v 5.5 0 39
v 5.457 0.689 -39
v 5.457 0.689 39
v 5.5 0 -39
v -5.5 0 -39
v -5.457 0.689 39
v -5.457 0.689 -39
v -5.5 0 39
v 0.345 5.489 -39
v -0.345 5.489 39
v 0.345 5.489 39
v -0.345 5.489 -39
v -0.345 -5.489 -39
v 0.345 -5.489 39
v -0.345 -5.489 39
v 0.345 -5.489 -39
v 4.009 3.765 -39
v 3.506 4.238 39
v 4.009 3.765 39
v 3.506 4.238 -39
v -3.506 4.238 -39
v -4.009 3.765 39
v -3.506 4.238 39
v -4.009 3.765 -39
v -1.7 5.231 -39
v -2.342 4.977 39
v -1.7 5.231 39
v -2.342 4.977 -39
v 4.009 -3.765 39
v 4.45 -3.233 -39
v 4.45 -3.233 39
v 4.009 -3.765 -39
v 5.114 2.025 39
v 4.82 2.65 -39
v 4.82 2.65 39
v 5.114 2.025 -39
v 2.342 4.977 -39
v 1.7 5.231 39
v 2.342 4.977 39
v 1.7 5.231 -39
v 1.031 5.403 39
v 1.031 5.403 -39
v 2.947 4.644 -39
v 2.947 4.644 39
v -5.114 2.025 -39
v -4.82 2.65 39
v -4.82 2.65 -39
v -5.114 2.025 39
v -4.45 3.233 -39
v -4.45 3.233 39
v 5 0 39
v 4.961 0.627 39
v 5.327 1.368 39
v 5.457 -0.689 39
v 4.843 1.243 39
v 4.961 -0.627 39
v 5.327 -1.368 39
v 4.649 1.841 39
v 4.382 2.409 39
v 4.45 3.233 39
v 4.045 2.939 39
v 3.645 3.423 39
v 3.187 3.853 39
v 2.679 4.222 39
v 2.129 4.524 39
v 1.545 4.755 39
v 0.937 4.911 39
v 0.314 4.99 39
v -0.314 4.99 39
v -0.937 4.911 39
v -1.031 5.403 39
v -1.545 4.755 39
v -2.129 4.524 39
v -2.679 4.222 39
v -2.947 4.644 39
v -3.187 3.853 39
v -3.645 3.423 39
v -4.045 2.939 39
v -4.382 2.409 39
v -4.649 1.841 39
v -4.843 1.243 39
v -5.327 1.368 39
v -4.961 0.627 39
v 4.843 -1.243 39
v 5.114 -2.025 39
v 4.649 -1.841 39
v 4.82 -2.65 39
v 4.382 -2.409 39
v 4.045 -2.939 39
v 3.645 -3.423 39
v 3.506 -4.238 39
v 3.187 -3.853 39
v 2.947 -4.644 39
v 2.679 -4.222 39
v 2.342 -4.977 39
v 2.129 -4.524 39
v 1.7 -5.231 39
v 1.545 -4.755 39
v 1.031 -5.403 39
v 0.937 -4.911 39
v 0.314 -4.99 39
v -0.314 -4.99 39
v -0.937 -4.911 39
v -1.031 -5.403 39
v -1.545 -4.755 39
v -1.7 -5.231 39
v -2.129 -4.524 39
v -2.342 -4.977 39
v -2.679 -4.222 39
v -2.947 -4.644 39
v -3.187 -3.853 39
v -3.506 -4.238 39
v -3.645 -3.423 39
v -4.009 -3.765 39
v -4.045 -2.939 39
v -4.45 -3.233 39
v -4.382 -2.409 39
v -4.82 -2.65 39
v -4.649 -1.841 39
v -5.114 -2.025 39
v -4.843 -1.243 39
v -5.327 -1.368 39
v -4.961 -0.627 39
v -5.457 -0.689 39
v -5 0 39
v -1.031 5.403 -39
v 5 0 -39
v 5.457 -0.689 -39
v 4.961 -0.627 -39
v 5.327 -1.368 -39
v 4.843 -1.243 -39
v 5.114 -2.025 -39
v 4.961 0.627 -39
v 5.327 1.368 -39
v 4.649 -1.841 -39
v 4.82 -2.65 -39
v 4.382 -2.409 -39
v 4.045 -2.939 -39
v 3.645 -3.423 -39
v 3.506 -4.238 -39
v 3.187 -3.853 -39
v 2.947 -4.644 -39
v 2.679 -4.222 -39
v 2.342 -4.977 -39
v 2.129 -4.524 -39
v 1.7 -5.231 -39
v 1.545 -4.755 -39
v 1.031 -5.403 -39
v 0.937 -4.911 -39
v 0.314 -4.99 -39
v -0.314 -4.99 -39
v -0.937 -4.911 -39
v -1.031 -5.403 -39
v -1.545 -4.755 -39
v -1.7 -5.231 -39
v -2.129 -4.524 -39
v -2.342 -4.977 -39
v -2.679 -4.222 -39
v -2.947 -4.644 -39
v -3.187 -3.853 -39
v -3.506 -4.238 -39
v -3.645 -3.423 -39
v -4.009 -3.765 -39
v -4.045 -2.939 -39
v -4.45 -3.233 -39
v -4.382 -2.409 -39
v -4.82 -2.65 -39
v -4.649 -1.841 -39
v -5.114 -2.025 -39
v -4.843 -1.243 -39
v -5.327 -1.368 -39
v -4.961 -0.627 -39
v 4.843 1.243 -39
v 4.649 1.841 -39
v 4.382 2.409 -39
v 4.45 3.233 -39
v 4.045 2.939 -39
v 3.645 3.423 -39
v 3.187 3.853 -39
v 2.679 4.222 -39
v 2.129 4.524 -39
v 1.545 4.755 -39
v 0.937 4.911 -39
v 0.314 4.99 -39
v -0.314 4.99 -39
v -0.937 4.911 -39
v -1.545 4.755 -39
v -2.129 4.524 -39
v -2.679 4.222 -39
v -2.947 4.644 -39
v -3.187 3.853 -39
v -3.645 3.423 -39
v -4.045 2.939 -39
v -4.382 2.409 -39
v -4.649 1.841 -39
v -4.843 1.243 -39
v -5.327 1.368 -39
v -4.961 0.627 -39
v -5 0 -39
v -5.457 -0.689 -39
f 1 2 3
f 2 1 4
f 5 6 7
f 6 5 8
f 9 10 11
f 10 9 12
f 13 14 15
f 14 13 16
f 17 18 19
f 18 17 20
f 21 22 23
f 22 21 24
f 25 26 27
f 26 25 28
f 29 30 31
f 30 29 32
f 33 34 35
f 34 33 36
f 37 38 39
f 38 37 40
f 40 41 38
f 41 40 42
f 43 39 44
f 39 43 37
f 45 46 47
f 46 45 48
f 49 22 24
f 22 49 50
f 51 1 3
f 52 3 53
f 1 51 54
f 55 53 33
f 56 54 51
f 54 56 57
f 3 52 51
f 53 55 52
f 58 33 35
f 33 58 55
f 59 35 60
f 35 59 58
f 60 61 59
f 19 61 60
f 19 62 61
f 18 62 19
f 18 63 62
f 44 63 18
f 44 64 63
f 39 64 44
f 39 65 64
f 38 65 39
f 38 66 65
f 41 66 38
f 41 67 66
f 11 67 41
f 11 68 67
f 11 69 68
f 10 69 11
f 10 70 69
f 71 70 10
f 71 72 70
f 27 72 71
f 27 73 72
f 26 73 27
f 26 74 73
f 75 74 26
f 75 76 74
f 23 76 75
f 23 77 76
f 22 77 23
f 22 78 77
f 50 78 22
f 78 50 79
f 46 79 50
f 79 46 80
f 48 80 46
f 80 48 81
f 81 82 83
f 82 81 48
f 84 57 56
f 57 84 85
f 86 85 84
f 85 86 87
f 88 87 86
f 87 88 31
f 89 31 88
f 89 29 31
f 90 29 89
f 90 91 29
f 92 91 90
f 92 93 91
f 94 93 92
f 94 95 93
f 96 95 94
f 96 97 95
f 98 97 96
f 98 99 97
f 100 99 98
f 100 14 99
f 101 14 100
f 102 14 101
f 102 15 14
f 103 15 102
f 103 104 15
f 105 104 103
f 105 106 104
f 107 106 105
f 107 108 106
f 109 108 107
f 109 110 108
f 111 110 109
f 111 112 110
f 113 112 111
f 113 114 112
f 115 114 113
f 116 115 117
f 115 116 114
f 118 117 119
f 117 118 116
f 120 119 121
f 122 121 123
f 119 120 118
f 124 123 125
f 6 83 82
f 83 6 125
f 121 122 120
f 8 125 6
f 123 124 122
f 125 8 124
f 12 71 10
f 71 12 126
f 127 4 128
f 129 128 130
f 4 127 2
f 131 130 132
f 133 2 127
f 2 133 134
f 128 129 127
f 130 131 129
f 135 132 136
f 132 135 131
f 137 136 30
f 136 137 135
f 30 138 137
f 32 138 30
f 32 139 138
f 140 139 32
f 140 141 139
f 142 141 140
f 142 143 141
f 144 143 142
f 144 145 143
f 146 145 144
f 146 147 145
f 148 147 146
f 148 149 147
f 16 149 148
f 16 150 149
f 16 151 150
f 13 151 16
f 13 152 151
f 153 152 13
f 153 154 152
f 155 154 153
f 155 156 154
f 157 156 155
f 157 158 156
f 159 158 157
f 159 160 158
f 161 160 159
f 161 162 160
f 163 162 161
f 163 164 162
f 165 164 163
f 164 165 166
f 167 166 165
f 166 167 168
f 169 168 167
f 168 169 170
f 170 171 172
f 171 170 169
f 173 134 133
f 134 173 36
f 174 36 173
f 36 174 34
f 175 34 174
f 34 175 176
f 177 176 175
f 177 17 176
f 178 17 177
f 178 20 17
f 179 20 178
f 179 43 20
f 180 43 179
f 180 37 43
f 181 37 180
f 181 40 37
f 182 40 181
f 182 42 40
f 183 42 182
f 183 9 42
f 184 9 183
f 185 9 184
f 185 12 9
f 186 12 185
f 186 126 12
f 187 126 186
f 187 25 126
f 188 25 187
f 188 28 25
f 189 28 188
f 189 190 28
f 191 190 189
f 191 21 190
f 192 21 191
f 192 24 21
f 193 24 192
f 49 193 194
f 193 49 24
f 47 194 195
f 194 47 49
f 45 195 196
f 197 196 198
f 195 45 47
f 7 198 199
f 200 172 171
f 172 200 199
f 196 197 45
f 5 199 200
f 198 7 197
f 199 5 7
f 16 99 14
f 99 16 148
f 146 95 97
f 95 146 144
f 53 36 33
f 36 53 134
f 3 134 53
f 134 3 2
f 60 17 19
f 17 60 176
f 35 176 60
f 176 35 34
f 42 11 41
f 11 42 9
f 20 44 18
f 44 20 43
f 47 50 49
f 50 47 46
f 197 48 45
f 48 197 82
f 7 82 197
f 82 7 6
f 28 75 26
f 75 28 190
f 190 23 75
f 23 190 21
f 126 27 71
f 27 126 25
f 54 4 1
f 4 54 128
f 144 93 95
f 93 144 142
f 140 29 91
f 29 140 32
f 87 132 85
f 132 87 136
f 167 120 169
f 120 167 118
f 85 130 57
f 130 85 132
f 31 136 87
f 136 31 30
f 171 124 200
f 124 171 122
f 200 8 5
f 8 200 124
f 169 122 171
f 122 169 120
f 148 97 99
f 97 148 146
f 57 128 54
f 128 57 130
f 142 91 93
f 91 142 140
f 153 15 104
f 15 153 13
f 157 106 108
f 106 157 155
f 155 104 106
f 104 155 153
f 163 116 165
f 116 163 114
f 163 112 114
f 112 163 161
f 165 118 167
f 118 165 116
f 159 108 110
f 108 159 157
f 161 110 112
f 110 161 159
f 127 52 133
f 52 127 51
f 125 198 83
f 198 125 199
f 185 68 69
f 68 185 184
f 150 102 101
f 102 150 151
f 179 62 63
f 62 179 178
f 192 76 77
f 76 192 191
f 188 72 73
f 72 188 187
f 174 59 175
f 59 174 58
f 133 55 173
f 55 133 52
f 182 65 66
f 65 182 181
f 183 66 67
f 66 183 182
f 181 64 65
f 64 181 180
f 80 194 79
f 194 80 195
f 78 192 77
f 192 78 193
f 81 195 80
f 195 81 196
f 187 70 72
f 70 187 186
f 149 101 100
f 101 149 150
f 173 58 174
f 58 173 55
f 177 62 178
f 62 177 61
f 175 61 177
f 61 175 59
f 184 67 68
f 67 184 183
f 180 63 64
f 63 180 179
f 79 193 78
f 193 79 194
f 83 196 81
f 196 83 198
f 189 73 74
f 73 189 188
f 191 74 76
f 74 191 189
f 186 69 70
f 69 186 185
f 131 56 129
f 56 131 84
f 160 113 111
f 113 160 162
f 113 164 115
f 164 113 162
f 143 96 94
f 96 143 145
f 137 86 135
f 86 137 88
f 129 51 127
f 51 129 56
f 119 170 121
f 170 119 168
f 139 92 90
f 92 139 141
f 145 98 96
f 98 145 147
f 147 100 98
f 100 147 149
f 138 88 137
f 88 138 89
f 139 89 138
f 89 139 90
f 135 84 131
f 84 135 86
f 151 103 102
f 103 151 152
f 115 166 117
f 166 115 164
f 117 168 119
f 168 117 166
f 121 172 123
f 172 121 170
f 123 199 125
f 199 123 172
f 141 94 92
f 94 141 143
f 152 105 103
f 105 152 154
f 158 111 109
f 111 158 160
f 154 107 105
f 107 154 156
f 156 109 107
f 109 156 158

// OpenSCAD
$fn = 50;


difference() {
	union() {
		translate(v = [0, 0, -39.0000000000]) {
			cylinder(h = 78, r = 5.5000000000);
		}
	}
	union() {
		translate(v = [0, 0, -100.0000000000]) {
			cylinder(h = 200, r = 5);
		}
	}
}
